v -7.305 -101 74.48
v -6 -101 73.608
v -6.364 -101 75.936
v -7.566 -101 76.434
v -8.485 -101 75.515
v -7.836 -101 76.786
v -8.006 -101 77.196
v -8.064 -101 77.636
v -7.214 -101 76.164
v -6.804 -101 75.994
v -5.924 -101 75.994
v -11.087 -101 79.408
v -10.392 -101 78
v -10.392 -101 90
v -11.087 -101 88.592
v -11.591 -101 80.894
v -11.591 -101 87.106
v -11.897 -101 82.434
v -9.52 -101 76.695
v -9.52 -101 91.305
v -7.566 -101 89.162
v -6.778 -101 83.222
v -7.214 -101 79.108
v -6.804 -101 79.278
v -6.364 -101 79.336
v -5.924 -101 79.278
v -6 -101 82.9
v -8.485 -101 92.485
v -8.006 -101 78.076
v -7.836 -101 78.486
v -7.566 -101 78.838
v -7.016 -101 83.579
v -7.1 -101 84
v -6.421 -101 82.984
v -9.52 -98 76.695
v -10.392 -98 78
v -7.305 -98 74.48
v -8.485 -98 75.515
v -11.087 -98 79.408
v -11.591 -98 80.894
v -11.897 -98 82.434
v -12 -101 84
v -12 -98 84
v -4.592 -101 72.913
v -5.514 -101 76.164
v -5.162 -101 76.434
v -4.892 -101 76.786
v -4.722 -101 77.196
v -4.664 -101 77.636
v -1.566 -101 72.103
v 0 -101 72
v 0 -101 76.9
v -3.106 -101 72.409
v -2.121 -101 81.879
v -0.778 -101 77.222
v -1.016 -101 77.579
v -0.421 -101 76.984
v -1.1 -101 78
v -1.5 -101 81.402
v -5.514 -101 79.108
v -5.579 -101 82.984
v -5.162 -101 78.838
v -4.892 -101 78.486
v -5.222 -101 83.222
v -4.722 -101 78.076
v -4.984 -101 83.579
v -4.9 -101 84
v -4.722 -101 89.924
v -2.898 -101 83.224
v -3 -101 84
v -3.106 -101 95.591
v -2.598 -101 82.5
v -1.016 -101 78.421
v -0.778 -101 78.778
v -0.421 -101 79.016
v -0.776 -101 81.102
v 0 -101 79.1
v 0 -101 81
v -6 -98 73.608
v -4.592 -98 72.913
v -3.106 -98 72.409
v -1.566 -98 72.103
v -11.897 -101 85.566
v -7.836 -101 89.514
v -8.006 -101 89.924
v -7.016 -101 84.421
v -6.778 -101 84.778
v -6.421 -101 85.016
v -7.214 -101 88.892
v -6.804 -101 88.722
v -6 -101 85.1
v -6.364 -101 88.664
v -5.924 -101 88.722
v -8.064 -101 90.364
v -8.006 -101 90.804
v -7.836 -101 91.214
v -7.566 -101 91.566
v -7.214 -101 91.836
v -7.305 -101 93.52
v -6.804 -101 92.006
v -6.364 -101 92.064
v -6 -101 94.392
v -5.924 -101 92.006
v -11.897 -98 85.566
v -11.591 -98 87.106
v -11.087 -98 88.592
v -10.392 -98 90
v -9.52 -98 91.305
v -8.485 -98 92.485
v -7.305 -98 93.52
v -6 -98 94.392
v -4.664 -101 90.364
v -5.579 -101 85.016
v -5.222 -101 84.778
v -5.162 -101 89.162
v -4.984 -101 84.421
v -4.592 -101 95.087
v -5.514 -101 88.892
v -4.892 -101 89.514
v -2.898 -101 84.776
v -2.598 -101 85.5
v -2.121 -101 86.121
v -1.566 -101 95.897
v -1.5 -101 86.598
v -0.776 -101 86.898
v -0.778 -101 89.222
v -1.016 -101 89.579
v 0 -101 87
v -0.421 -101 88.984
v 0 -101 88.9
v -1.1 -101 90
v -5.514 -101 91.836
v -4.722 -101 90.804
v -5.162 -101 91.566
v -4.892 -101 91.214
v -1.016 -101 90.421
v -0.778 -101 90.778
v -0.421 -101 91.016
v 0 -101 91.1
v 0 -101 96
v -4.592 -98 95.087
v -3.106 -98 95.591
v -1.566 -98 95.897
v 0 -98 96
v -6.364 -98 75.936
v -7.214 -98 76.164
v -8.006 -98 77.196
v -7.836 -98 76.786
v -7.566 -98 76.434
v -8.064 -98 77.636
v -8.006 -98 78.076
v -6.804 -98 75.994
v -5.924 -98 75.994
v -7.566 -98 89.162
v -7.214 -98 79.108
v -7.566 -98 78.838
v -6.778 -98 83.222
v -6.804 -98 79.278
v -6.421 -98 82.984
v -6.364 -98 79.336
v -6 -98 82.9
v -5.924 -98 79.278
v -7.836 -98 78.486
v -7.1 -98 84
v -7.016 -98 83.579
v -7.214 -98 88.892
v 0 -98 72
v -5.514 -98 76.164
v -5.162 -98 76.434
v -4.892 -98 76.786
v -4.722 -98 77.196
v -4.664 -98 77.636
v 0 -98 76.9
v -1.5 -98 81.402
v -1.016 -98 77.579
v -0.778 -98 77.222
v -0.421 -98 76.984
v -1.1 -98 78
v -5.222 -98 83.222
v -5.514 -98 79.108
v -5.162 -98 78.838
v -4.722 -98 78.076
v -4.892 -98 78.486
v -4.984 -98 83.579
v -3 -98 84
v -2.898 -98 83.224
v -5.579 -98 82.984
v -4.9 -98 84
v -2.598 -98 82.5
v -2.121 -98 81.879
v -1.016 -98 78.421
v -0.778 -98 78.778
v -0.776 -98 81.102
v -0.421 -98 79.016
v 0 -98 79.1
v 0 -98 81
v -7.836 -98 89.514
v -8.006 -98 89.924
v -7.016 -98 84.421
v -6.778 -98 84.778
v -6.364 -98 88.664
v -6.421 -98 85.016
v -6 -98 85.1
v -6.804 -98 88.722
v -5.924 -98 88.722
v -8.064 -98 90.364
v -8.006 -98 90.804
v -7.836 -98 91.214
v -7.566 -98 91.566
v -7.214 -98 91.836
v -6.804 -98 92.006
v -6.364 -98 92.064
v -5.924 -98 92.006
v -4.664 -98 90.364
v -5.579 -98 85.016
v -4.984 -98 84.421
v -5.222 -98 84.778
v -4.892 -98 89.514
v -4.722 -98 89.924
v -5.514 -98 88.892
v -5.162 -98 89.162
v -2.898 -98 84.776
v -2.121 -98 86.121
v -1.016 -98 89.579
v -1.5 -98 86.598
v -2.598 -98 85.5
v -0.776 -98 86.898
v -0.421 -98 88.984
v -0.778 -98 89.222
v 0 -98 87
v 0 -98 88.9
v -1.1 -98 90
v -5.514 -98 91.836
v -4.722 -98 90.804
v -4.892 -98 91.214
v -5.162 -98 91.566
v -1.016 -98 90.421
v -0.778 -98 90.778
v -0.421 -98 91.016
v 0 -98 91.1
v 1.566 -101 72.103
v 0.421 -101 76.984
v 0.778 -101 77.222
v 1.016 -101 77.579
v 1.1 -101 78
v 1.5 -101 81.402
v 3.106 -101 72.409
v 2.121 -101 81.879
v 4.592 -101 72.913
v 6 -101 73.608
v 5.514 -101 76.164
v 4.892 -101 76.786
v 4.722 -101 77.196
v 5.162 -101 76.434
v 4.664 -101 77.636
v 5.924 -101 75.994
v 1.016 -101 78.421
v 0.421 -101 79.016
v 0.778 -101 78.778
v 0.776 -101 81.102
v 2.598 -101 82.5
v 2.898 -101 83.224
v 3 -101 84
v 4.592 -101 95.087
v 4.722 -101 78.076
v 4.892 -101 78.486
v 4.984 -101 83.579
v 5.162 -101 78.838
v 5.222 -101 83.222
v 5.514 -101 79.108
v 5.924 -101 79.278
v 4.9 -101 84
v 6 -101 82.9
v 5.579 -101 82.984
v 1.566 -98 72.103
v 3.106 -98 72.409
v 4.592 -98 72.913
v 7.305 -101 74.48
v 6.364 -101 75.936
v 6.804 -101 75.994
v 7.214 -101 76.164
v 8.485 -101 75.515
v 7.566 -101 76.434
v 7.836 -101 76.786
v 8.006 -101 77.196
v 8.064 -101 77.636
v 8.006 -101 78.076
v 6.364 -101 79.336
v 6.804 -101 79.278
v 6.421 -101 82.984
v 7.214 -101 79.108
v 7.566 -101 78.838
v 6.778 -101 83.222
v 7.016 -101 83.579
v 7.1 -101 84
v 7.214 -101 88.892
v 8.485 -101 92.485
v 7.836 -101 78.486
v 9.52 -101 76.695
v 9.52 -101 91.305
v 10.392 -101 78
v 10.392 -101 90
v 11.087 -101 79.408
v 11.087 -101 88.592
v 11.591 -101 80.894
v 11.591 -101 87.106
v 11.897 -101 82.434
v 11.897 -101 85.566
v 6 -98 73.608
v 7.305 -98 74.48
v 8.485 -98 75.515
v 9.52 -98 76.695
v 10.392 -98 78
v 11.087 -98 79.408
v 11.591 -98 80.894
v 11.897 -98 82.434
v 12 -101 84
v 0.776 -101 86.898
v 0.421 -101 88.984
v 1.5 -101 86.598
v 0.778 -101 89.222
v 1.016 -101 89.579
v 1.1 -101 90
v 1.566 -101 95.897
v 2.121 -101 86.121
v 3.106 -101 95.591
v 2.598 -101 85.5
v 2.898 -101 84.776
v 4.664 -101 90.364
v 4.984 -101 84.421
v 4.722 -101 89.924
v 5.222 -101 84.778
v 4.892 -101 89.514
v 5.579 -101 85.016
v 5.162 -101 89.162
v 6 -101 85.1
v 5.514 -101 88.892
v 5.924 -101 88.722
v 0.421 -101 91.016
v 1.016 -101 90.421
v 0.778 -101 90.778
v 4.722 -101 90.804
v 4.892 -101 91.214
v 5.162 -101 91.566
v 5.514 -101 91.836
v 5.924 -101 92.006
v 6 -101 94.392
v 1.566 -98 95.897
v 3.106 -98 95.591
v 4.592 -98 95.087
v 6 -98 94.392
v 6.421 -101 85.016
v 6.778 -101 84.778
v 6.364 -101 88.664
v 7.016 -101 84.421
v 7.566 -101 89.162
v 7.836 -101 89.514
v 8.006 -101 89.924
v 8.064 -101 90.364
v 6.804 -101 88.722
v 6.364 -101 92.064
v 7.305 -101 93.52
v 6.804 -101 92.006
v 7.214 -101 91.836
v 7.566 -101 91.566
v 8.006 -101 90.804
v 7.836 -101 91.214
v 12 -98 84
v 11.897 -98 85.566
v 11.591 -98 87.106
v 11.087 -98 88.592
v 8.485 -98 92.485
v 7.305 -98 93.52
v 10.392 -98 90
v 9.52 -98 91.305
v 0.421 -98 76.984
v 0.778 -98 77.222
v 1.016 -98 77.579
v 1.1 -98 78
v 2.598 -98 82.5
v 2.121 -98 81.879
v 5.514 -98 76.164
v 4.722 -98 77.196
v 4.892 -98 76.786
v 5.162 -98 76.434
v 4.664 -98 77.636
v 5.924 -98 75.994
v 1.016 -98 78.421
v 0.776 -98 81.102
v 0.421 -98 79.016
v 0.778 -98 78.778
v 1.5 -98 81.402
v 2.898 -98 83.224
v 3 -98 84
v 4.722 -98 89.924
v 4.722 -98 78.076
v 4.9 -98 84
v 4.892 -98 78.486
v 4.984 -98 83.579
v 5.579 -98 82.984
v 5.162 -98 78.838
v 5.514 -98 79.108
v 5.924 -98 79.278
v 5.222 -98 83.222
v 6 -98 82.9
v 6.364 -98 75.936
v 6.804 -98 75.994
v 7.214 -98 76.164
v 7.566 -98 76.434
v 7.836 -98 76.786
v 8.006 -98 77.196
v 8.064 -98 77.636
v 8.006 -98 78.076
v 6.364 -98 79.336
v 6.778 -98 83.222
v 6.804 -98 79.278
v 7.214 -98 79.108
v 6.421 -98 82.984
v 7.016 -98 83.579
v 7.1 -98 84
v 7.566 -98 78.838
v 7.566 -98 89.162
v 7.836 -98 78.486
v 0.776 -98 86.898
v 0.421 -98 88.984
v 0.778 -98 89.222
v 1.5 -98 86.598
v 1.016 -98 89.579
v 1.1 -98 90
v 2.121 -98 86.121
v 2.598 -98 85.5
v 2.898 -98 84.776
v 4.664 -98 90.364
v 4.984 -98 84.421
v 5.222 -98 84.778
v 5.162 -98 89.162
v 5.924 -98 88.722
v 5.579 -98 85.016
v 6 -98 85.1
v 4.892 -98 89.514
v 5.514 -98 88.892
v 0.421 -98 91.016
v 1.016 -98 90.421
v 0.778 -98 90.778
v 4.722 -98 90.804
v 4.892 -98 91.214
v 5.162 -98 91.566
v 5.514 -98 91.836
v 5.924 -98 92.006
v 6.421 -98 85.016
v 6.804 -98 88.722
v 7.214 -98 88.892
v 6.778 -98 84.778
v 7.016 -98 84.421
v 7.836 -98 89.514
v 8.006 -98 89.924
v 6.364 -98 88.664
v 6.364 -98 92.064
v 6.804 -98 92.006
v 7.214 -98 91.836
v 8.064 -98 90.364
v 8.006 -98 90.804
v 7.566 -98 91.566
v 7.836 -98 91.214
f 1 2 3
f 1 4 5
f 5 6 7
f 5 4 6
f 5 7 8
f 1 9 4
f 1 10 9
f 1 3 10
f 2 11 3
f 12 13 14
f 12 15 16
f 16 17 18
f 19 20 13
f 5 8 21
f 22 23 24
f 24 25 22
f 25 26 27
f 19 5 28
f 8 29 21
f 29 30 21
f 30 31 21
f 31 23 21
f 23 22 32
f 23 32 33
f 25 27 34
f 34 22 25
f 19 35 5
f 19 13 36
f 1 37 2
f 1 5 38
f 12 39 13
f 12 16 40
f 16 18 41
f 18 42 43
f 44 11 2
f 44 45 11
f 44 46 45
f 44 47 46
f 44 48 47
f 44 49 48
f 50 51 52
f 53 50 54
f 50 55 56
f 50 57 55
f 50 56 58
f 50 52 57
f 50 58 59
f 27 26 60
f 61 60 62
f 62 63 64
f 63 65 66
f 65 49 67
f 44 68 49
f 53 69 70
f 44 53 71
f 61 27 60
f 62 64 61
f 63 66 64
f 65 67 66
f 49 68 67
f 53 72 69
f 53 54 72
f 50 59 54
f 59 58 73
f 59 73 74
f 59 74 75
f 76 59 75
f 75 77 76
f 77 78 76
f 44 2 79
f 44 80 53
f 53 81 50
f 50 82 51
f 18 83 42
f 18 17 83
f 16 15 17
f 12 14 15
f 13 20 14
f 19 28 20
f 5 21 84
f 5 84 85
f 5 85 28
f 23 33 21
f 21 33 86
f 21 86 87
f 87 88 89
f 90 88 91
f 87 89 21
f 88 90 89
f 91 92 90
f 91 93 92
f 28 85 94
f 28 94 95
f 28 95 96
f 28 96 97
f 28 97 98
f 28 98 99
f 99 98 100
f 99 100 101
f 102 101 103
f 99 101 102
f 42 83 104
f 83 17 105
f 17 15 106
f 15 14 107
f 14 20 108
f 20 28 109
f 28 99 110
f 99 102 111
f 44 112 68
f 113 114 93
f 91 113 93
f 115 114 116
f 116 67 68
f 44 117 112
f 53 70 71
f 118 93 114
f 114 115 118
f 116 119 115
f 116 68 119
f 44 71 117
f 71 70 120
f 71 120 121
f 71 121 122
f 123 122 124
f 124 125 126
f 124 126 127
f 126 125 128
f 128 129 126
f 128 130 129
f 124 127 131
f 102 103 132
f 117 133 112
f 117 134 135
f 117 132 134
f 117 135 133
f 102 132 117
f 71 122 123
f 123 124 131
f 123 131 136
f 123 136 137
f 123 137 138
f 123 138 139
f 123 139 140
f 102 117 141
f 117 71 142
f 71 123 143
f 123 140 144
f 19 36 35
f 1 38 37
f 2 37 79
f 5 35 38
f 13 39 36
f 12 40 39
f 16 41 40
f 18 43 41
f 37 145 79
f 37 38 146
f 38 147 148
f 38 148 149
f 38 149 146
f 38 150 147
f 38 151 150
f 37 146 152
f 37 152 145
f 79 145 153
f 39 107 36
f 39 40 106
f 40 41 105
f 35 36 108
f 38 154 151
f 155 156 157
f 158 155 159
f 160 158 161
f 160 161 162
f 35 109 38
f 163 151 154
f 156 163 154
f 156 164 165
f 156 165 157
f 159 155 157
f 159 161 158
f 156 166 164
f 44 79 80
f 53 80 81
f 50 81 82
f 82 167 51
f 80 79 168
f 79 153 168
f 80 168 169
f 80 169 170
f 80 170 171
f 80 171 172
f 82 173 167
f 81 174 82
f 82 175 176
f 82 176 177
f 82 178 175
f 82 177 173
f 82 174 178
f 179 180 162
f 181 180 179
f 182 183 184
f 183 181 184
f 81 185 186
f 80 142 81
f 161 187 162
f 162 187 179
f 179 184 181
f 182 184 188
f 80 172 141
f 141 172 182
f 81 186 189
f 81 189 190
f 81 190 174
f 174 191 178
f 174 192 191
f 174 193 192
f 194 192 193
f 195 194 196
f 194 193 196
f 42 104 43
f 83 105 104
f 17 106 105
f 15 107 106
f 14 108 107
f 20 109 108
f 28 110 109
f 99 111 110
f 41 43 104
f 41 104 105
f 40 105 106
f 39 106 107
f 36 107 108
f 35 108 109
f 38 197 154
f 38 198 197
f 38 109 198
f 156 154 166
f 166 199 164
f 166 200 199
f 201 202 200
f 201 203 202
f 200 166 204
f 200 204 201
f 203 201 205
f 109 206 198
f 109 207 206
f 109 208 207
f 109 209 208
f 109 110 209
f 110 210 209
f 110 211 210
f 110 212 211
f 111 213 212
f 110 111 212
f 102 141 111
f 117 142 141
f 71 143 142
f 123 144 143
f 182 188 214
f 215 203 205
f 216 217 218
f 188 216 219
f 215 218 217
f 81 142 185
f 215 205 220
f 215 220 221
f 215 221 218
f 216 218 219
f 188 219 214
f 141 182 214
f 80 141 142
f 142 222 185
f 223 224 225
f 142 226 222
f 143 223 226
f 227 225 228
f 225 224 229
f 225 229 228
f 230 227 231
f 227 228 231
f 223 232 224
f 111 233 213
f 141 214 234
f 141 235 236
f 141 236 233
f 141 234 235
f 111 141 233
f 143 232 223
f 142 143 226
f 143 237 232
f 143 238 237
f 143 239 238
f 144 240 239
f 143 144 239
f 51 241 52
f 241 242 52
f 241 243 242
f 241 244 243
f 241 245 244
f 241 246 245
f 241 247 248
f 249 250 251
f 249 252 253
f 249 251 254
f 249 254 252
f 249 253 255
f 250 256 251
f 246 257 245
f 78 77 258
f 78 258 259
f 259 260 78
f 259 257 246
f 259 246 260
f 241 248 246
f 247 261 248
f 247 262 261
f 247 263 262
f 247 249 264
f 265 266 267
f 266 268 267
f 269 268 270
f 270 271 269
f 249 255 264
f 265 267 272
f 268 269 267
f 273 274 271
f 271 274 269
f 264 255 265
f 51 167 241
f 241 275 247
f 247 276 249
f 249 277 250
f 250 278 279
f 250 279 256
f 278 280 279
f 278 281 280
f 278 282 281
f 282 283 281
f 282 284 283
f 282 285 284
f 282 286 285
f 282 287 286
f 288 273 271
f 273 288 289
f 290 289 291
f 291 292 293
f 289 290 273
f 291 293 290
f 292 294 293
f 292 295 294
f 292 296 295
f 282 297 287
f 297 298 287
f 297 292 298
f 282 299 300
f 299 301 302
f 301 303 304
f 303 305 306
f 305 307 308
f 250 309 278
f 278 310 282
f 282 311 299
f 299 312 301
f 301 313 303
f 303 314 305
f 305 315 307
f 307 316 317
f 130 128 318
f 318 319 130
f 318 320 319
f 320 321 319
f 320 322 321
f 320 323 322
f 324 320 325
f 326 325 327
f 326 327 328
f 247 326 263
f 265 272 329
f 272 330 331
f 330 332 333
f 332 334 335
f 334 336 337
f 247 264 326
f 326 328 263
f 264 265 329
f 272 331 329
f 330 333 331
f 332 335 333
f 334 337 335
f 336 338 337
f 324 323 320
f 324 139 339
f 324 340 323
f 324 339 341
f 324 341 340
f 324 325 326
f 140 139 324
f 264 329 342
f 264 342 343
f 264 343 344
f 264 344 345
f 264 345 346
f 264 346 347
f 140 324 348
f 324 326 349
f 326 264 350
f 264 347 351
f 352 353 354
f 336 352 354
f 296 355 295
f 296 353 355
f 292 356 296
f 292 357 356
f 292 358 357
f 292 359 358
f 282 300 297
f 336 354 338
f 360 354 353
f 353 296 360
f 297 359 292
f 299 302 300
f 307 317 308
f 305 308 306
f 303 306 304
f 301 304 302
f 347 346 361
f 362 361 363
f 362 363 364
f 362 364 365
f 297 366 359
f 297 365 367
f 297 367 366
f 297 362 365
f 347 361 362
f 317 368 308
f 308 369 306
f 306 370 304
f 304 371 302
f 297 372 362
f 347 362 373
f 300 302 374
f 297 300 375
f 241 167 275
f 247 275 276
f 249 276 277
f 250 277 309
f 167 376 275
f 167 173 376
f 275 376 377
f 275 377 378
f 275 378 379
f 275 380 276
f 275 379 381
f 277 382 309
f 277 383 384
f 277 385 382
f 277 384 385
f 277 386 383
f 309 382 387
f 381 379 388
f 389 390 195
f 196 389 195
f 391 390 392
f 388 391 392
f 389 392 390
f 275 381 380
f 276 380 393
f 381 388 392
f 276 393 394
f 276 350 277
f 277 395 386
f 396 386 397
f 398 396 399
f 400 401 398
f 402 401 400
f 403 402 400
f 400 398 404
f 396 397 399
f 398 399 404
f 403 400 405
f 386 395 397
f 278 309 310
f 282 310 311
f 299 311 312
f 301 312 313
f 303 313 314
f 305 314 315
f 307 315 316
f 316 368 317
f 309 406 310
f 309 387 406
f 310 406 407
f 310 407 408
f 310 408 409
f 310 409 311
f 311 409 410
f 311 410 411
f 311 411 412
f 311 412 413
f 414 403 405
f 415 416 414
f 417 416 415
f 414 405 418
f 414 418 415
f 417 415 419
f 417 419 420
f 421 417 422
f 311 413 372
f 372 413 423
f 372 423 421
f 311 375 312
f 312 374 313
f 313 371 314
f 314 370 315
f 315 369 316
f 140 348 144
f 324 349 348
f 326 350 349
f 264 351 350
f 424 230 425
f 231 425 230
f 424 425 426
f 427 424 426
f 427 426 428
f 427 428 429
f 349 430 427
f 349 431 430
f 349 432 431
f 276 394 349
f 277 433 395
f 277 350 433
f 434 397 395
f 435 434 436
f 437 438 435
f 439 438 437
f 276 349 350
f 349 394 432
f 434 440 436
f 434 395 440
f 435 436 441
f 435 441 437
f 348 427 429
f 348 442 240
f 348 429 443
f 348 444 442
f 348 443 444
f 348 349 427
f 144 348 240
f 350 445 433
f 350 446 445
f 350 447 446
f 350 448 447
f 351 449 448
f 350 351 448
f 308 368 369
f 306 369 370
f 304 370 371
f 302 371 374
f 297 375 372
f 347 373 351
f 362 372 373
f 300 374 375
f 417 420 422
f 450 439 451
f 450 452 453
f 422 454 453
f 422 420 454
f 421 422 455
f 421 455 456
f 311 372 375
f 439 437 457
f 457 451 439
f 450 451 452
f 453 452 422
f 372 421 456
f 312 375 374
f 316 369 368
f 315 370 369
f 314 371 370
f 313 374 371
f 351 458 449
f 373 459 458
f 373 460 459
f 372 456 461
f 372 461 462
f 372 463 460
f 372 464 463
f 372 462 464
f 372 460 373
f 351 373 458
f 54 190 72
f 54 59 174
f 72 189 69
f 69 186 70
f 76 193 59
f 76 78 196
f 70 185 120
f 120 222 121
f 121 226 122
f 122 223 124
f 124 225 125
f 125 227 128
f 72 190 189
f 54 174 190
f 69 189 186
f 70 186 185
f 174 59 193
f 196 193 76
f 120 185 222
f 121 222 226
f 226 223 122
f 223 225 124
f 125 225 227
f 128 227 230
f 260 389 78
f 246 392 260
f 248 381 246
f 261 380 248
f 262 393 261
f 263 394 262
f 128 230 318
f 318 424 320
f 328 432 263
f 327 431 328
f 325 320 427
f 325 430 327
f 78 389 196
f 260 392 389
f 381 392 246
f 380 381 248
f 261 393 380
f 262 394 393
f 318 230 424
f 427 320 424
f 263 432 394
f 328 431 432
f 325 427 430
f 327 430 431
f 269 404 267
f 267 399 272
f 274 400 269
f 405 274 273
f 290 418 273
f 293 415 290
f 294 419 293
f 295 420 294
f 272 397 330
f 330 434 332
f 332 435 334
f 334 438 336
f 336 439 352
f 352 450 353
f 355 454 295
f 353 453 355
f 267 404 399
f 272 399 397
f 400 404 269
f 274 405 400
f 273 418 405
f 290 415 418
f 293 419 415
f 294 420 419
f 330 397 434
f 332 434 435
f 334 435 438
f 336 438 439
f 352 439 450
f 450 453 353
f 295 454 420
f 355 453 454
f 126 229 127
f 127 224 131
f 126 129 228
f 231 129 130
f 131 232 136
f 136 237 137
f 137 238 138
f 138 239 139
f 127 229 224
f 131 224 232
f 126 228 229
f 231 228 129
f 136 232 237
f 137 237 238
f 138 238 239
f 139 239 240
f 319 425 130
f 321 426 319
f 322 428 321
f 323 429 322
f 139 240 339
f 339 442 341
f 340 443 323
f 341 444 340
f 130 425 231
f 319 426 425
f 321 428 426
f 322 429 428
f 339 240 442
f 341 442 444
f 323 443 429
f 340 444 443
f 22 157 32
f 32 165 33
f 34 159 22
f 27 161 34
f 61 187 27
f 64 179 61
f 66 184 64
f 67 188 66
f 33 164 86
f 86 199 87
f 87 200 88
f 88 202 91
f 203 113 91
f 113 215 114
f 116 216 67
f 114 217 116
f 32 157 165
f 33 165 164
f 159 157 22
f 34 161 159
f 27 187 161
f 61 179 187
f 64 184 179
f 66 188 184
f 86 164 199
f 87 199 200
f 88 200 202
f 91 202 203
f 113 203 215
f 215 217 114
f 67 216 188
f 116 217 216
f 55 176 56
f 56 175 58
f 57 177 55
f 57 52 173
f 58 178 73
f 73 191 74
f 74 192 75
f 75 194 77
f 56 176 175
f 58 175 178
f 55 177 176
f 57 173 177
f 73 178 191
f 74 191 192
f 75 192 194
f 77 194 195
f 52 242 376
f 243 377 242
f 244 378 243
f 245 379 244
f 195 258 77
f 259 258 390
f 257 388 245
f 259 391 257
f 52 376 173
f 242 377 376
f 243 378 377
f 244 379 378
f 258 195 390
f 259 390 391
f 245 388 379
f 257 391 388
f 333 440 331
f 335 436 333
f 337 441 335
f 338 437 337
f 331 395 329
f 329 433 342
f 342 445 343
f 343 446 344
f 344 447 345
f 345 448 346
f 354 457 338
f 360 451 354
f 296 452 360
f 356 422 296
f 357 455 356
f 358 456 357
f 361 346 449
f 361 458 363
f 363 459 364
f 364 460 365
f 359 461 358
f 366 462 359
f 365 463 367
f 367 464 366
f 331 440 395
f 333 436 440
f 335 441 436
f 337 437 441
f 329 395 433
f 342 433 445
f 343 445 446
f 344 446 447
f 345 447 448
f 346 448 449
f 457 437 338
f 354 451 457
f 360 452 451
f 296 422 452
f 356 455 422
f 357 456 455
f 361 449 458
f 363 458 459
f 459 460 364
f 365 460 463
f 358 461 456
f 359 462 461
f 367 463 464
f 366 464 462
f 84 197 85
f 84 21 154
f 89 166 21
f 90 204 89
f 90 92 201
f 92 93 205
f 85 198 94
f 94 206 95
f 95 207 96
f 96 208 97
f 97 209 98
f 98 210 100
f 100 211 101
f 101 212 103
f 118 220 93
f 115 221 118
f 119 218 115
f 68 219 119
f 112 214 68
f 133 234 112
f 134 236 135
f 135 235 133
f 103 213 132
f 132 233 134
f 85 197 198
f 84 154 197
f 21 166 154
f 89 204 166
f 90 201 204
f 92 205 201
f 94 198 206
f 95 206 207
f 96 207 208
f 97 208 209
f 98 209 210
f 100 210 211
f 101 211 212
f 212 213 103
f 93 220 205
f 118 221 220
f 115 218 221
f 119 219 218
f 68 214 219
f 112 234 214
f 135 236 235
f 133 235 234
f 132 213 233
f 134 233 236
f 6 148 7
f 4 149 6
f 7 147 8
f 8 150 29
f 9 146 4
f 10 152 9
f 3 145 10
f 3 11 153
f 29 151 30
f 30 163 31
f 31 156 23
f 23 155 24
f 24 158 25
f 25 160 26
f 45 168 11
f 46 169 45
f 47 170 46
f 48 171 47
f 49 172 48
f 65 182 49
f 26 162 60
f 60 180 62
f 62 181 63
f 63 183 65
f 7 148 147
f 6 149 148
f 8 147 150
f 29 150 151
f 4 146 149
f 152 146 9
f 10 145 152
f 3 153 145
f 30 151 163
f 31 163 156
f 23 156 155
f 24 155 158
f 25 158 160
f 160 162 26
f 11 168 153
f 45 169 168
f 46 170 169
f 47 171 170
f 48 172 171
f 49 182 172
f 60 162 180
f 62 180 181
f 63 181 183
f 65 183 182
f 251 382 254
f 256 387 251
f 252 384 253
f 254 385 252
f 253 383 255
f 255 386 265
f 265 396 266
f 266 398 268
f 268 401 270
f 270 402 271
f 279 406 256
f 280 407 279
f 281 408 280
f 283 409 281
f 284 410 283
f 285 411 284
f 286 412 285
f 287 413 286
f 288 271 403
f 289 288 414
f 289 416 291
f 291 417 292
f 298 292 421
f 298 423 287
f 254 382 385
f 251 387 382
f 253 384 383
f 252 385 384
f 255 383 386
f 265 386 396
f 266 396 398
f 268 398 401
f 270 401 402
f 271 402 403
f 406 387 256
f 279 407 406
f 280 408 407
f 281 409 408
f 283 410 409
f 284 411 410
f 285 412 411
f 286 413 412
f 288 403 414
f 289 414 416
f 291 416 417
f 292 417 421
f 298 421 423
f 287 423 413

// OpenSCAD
// =====================================================================
//  p16_horn_adapter_disc.scad - P16 horn adapter disc (XL330 horn -> yoke cheek A)
//  PROJECT SCRATCH · 05-engineering/cad/frame · units: mm · frame: global (disc at Y -101..-98 on the elbow axis)
//  Sources: mechanical.md section 5.3 (diam 24 x 3, screws to the horn's M2 holes [VERIFY], cheek A bolts to it with
//  4 x M3 on a diam 18 circle, centre relief diam 6 for the horn screw), 11 P16.  Print flat.
//  Horn (bom-verified.md 11 item 3): diam 16 x 3, 4 x diam 1.6 on PCD 12 at 90 deg with one hole on the body's long
//  axis (Z), M2 x 6 tapping screws ONLY (3 mm disc + 3 mm engagement; M2 x 8 bottoms into the gearbox).  The 4 x M3
//  cheek screws on PCD 18 sit at 45 deg so they clear the horn screws (centres 3.6 mm apart).
// =====================================================================
include <lib_sp1.scad>
D = 24;  Y0 = -101;  Y1 = -98;  CENTRE_D = 6;  HORN_PCD = 12;  HORN_HOLE_D = 2.2;  CHEEK_PCD = 18;  CHEEK_ANG0 = 45;
module p16_horn_adapter_disc() difference() {
    cyl_y(D / 2, Y0, Y1, AXIS_X, AXIS_Z);
    cyl_y(CENTRE_D / 2, Y0 - 1, Y1 + 1, AXIS_X, AXIS_Z, fn = 24);
    for (i = [0 : 3]) cyl_y(HORN_HOLE_D / 2, Y0 - 1, Y1 + 1, AXIS_X + HORN_PCD / 2 * cos(90 * i), AXIS_Z + HORN_PCD / 2 * sin(90 * i), fn = 16);
    for (i = [0 : 3]) cyl_y(M3_CLEAR / 2, Y0 - 1, Y1 + 1, AXIS_X + CHEEK_PCD / 2 * cos(CHEEK_ANG0 + 90 * i), AXIS_Z + CHEEK_PCD / 2 * sin(CHEEK_ANG0 + 90 * i), fn = 24);
}
p16_horn_adapter_disc();
